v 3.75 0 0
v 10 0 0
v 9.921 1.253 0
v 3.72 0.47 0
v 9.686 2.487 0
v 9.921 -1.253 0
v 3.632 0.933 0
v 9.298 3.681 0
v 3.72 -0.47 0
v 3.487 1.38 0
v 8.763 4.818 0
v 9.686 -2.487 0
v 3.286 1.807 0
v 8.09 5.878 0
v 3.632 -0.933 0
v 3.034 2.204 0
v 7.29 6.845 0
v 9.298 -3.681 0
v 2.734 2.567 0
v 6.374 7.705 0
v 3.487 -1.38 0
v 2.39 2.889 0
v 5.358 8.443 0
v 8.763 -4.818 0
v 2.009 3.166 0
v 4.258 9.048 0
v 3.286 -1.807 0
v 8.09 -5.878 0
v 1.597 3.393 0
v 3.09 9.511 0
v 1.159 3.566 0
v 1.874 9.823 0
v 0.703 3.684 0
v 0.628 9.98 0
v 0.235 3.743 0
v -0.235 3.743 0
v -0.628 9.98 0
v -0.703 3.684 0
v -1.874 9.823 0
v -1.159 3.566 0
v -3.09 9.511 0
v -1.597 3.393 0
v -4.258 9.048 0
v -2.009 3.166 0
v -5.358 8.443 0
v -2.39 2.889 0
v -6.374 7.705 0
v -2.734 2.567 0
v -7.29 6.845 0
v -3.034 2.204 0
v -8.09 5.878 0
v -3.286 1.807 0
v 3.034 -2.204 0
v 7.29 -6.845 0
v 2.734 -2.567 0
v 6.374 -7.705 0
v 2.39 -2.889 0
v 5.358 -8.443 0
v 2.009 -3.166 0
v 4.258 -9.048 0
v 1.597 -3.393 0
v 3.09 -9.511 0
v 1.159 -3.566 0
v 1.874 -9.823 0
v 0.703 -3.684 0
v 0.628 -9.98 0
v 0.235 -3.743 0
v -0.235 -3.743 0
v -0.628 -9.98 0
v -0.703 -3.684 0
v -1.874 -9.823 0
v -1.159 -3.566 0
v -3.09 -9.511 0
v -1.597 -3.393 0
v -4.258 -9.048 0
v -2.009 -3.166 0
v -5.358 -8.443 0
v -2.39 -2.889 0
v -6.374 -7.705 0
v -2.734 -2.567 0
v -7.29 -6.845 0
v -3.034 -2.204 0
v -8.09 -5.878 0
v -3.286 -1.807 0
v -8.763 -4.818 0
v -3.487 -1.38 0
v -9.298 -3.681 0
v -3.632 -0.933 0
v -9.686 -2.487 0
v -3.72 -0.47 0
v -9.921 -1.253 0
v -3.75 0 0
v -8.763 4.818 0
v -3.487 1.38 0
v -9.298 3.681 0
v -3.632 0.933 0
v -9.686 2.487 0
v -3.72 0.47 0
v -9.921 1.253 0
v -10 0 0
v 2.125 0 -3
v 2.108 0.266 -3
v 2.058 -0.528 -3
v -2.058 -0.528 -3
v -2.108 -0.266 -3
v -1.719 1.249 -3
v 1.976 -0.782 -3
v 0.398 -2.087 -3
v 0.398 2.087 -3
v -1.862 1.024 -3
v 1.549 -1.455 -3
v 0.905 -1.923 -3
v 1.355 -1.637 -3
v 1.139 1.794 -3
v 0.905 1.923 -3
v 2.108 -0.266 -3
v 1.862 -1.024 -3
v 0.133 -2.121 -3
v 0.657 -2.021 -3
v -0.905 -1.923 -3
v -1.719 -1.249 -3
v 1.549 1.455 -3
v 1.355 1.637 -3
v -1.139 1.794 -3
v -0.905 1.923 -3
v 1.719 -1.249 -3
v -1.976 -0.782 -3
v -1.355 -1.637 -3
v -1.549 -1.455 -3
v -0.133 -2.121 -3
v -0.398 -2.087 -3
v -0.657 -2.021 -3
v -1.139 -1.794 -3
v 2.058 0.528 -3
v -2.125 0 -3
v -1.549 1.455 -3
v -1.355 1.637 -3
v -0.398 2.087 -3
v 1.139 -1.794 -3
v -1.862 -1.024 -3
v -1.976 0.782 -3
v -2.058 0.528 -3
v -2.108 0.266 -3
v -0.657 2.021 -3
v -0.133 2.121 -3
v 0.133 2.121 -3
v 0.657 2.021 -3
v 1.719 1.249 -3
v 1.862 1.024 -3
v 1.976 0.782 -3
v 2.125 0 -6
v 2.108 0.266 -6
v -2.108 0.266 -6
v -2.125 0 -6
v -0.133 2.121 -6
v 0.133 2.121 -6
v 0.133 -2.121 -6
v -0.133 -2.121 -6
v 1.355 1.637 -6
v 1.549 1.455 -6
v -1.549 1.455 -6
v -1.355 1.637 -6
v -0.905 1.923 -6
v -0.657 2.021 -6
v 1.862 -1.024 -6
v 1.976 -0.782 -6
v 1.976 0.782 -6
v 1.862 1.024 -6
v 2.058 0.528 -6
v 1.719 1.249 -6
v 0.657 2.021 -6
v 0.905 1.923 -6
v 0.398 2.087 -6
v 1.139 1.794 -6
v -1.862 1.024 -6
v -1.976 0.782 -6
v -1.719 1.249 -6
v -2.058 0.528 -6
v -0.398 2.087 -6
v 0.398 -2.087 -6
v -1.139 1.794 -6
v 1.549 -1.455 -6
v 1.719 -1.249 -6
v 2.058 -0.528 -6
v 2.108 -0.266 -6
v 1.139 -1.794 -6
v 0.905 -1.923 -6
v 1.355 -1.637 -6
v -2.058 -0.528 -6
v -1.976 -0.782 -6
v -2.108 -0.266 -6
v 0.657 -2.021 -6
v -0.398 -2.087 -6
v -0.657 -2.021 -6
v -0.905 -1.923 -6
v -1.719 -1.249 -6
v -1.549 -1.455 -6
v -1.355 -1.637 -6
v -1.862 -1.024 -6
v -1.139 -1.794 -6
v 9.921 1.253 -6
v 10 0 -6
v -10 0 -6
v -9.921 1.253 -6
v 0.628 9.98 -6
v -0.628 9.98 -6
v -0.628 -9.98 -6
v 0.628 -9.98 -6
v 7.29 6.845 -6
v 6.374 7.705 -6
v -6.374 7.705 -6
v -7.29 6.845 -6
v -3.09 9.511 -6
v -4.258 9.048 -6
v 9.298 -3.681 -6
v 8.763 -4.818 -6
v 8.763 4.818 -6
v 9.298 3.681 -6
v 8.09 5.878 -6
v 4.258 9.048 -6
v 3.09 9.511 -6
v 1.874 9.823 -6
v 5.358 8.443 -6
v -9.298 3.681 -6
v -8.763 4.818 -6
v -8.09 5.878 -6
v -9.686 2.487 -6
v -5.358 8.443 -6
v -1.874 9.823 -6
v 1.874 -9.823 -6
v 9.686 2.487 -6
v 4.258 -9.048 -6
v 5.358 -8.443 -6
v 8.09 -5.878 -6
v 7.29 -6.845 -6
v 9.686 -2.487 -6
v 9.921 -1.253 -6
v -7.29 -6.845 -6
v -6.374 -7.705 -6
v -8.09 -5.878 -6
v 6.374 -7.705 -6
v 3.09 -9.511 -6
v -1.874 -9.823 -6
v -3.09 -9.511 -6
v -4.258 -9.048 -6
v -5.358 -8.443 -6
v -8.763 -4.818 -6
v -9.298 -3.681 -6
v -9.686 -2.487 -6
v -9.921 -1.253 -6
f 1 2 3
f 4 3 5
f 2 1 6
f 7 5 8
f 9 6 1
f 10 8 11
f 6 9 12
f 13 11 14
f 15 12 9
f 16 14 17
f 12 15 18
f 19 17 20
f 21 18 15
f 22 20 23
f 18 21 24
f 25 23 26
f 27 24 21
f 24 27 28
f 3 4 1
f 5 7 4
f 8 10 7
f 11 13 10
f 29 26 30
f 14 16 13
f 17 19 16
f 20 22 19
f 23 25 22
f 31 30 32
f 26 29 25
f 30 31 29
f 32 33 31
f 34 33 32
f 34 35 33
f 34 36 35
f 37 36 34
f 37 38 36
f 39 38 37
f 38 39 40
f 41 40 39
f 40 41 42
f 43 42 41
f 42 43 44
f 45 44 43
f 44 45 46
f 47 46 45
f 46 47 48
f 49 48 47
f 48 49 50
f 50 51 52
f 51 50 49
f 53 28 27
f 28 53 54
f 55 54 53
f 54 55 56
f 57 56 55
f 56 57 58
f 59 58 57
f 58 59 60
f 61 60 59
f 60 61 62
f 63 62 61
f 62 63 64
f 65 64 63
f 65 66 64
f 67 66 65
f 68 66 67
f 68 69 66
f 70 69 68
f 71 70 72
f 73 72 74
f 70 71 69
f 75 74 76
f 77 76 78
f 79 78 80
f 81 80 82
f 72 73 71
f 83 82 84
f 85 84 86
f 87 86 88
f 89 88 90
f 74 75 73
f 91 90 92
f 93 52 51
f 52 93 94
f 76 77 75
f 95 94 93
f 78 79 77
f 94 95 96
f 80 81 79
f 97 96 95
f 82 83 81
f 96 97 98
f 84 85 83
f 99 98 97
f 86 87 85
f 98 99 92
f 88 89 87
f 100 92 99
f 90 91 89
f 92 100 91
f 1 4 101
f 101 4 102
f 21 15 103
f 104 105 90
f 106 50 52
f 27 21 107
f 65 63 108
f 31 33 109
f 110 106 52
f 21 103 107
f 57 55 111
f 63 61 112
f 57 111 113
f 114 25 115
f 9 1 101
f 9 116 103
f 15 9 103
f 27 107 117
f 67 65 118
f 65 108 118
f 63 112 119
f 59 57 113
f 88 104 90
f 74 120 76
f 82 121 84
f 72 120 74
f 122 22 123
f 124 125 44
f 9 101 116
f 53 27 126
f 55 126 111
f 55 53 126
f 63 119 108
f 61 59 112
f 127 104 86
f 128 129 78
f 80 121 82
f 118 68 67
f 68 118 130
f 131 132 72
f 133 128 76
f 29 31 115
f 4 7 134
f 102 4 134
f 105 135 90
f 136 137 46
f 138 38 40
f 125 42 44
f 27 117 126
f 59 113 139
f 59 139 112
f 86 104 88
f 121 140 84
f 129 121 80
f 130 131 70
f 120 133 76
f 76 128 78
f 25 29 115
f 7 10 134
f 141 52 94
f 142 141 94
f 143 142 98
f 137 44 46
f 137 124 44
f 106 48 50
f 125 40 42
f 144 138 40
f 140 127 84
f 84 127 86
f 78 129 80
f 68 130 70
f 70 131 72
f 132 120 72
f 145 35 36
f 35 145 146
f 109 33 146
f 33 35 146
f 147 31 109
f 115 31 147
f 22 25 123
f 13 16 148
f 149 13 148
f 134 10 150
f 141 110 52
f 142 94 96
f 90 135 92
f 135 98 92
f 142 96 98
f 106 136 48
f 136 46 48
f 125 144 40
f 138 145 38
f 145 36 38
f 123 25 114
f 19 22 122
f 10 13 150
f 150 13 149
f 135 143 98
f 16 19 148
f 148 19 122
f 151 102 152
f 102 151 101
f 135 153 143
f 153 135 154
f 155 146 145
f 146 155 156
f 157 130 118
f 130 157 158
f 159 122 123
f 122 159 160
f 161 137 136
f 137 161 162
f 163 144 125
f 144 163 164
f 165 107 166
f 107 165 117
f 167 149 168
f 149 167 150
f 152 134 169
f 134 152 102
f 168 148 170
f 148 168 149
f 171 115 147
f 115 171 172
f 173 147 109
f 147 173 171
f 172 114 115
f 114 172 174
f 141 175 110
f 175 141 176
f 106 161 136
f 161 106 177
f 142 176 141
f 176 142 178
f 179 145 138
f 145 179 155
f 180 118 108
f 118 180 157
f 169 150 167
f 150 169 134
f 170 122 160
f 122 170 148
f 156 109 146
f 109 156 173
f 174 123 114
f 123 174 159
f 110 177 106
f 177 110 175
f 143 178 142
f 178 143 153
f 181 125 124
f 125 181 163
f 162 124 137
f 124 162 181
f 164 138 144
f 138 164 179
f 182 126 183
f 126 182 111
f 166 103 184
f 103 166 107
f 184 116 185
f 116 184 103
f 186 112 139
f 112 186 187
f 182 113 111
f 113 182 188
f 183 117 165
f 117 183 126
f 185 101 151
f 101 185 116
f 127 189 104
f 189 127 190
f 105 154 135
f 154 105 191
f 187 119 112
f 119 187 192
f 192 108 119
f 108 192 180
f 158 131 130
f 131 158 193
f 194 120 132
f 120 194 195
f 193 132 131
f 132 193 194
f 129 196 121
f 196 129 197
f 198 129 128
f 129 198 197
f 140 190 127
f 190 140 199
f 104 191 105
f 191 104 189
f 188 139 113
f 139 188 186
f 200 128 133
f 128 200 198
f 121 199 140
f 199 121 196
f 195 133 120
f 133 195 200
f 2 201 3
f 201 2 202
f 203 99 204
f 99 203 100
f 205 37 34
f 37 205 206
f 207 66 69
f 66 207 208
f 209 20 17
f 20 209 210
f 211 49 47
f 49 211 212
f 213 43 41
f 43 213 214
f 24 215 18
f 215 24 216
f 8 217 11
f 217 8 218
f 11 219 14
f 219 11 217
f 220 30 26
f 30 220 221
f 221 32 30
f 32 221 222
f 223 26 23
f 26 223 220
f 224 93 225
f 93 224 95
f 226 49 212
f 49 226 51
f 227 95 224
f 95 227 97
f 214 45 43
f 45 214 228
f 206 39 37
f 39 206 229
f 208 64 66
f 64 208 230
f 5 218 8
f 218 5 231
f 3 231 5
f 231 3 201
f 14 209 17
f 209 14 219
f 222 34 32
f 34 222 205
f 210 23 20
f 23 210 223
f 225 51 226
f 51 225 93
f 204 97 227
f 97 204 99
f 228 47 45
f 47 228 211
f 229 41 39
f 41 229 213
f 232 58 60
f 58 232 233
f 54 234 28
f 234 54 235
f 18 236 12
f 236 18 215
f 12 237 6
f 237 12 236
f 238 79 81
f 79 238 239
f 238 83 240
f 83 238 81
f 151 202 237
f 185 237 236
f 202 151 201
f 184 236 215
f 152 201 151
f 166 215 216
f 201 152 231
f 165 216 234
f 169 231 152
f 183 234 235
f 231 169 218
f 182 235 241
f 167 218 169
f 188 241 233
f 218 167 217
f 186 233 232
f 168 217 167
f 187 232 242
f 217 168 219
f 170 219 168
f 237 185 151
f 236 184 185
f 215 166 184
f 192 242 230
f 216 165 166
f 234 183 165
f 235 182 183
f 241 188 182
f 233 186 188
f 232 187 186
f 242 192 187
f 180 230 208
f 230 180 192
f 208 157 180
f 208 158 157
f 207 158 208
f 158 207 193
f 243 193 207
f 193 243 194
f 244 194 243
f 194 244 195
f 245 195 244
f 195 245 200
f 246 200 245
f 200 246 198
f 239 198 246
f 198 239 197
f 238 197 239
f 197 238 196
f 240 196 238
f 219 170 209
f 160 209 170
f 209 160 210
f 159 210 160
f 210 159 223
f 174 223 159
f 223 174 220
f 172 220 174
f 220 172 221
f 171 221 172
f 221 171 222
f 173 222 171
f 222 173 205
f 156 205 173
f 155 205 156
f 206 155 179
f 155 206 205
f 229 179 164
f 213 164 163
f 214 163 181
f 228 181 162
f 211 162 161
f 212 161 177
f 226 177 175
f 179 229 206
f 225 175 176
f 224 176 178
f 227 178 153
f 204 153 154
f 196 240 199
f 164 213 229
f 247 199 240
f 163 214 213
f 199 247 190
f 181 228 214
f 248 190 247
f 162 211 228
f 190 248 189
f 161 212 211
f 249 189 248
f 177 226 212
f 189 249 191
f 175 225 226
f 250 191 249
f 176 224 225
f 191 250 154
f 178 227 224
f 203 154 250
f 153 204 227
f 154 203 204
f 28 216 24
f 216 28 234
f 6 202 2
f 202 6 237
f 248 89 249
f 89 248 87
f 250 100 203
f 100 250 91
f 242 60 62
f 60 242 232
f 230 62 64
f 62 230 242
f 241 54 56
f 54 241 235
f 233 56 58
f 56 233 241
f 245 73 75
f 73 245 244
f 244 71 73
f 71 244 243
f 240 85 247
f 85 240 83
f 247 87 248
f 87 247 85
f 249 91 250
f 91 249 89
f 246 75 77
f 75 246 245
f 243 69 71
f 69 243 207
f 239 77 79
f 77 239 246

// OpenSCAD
$fn = 50;


difference() {
	union() {
		translate(v = [0, 0, -6.0000000000]) {
			cylinder(h = 6, r = 10.0000000000);
		}
	}
	union() {
		translate(v = [0, 0, 0]) {
			rotate(a = [0, 0, 0]) {
				difference() {
					union() {
						translate(v = [0, 0, -9.0000000000]) {
							cylinder(h = 9, r = 2.0000000000);
						}
						translate(v = [0, 0, -3]) {
							cylinder(h = 3, r1 = 2.1250000000, r2 = 3.7500000000);
						}
						translate(v = [0, 0, -9.0000000000]) {
							cylinder(h = 9, r = 2.1250000000);
						}
						translate(v = [0, 0, -9.0000000000]) {
							cylinder(h = 9, r = 2.0000000000);
						}
					}
					union();
				}
			}
		}
	}
}
